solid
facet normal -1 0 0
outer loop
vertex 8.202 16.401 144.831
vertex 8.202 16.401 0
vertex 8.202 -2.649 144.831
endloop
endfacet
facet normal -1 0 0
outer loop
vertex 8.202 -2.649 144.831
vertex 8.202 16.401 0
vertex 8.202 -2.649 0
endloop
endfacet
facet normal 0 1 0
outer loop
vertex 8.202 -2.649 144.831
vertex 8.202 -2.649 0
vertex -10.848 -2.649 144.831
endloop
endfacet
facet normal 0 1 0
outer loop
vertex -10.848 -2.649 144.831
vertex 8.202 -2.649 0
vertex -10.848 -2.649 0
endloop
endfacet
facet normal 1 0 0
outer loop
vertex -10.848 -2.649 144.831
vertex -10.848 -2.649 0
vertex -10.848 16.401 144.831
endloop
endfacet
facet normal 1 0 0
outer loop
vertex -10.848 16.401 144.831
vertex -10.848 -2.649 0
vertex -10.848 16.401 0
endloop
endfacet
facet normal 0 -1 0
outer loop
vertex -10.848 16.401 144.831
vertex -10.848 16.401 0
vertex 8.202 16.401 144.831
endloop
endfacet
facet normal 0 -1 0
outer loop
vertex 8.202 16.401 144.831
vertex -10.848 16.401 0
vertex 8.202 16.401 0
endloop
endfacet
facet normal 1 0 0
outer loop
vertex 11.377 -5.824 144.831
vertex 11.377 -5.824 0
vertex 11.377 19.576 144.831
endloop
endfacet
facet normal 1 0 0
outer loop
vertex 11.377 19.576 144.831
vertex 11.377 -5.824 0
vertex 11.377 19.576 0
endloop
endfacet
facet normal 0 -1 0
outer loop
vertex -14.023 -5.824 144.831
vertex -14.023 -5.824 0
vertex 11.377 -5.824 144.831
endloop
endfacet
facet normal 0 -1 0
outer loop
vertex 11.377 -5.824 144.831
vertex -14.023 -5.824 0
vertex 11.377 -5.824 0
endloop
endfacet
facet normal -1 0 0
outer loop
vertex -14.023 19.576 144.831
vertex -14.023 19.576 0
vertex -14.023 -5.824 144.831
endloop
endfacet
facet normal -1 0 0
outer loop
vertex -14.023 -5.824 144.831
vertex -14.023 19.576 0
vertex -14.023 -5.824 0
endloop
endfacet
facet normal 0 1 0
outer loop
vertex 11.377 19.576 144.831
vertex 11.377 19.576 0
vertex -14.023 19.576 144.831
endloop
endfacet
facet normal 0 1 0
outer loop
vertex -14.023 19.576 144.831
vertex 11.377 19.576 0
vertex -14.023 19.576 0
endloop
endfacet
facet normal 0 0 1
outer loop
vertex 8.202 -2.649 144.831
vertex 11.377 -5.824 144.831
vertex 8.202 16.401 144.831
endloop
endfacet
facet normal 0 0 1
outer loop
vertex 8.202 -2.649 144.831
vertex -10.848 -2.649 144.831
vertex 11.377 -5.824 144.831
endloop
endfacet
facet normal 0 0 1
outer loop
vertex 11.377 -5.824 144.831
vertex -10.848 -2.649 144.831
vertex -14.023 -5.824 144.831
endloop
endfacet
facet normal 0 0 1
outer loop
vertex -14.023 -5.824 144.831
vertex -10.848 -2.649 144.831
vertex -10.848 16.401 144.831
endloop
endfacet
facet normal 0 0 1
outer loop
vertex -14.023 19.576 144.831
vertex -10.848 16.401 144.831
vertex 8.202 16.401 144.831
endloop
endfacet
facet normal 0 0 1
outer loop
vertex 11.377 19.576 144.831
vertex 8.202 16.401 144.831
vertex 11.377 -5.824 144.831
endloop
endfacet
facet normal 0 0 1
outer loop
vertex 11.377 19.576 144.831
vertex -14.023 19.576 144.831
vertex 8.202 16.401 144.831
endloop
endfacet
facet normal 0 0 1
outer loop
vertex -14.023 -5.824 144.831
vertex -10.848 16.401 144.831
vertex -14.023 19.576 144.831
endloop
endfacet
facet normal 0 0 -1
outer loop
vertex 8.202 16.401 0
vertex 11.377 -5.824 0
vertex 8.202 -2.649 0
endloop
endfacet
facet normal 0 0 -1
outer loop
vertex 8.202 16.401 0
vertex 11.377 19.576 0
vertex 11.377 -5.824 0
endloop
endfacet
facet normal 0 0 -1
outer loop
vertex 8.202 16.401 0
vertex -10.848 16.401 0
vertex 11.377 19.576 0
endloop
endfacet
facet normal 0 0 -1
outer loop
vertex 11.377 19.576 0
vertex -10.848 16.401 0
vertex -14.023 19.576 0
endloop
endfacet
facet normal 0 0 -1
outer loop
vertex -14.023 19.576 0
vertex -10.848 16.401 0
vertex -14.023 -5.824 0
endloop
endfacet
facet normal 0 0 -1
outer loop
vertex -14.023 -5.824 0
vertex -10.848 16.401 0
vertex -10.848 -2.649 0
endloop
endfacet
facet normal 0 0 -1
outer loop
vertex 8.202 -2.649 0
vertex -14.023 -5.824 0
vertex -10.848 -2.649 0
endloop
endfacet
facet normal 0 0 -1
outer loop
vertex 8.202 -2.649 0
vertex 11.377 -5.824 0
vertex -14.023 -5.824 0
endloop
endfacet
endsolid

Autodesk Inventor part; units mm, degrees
ref_plane "YZ Plane" through (0, 0, 0) normal (1, 0, 0) x (0, 1, 0)
ref_plane "XZ Plane" through (0, 0, 0) normal (0, 1, 0) x (-1, 0, 0)
ref_plane "XY Plane" through (0, 0, 0) normal (0, 0, 1) x (1, 0, 0)
sketch "Sketch1" plane through (0, 0, 0) normal (0, 0, 1) x (1, 0, 0)
  line L0 (-14.0233, 19.5756) -> (11.3767, 19.5756)
  line L1 (11.3767, 19.5756) -> (11.3767, -5.8244)
  line L2 (11.3767, -5.8244) -> (-14.0233, -5.8244)
  line L3 (-14.0233, -5.8244) -> (-14.0233, 19.5756)
  line L4 (-10.8483, 16.4006) -> (8.2017, 16.4006)
  line L5 (8.2017, 16.4006) -> (8.2017, -2.6494)
  line L6 (8.2017, -2.6494) -> (-10.8483, -2.6494)
  line L7 (-10.8483, -2.6494) -> (-10.8483, 16.4006)
  point P0 (0, 0)
  dimension "d0" = 3.175
  dimension "d1" = 3.175
  dimension "d2" = 3.175
  dimension "d3" = 3.175
  dimension "d4" = 25.4
  dimension "d5" = 25.4
extrude "Extrusion1" add sketch "Sketch1" along normal blind 144.8308
equation "\"d1\" = d3"
equation "\"d2\" = d0"
equation "\"d3\" = d2"
equation "\"d5\" = d4"
properties part number "internalframeconnector"
